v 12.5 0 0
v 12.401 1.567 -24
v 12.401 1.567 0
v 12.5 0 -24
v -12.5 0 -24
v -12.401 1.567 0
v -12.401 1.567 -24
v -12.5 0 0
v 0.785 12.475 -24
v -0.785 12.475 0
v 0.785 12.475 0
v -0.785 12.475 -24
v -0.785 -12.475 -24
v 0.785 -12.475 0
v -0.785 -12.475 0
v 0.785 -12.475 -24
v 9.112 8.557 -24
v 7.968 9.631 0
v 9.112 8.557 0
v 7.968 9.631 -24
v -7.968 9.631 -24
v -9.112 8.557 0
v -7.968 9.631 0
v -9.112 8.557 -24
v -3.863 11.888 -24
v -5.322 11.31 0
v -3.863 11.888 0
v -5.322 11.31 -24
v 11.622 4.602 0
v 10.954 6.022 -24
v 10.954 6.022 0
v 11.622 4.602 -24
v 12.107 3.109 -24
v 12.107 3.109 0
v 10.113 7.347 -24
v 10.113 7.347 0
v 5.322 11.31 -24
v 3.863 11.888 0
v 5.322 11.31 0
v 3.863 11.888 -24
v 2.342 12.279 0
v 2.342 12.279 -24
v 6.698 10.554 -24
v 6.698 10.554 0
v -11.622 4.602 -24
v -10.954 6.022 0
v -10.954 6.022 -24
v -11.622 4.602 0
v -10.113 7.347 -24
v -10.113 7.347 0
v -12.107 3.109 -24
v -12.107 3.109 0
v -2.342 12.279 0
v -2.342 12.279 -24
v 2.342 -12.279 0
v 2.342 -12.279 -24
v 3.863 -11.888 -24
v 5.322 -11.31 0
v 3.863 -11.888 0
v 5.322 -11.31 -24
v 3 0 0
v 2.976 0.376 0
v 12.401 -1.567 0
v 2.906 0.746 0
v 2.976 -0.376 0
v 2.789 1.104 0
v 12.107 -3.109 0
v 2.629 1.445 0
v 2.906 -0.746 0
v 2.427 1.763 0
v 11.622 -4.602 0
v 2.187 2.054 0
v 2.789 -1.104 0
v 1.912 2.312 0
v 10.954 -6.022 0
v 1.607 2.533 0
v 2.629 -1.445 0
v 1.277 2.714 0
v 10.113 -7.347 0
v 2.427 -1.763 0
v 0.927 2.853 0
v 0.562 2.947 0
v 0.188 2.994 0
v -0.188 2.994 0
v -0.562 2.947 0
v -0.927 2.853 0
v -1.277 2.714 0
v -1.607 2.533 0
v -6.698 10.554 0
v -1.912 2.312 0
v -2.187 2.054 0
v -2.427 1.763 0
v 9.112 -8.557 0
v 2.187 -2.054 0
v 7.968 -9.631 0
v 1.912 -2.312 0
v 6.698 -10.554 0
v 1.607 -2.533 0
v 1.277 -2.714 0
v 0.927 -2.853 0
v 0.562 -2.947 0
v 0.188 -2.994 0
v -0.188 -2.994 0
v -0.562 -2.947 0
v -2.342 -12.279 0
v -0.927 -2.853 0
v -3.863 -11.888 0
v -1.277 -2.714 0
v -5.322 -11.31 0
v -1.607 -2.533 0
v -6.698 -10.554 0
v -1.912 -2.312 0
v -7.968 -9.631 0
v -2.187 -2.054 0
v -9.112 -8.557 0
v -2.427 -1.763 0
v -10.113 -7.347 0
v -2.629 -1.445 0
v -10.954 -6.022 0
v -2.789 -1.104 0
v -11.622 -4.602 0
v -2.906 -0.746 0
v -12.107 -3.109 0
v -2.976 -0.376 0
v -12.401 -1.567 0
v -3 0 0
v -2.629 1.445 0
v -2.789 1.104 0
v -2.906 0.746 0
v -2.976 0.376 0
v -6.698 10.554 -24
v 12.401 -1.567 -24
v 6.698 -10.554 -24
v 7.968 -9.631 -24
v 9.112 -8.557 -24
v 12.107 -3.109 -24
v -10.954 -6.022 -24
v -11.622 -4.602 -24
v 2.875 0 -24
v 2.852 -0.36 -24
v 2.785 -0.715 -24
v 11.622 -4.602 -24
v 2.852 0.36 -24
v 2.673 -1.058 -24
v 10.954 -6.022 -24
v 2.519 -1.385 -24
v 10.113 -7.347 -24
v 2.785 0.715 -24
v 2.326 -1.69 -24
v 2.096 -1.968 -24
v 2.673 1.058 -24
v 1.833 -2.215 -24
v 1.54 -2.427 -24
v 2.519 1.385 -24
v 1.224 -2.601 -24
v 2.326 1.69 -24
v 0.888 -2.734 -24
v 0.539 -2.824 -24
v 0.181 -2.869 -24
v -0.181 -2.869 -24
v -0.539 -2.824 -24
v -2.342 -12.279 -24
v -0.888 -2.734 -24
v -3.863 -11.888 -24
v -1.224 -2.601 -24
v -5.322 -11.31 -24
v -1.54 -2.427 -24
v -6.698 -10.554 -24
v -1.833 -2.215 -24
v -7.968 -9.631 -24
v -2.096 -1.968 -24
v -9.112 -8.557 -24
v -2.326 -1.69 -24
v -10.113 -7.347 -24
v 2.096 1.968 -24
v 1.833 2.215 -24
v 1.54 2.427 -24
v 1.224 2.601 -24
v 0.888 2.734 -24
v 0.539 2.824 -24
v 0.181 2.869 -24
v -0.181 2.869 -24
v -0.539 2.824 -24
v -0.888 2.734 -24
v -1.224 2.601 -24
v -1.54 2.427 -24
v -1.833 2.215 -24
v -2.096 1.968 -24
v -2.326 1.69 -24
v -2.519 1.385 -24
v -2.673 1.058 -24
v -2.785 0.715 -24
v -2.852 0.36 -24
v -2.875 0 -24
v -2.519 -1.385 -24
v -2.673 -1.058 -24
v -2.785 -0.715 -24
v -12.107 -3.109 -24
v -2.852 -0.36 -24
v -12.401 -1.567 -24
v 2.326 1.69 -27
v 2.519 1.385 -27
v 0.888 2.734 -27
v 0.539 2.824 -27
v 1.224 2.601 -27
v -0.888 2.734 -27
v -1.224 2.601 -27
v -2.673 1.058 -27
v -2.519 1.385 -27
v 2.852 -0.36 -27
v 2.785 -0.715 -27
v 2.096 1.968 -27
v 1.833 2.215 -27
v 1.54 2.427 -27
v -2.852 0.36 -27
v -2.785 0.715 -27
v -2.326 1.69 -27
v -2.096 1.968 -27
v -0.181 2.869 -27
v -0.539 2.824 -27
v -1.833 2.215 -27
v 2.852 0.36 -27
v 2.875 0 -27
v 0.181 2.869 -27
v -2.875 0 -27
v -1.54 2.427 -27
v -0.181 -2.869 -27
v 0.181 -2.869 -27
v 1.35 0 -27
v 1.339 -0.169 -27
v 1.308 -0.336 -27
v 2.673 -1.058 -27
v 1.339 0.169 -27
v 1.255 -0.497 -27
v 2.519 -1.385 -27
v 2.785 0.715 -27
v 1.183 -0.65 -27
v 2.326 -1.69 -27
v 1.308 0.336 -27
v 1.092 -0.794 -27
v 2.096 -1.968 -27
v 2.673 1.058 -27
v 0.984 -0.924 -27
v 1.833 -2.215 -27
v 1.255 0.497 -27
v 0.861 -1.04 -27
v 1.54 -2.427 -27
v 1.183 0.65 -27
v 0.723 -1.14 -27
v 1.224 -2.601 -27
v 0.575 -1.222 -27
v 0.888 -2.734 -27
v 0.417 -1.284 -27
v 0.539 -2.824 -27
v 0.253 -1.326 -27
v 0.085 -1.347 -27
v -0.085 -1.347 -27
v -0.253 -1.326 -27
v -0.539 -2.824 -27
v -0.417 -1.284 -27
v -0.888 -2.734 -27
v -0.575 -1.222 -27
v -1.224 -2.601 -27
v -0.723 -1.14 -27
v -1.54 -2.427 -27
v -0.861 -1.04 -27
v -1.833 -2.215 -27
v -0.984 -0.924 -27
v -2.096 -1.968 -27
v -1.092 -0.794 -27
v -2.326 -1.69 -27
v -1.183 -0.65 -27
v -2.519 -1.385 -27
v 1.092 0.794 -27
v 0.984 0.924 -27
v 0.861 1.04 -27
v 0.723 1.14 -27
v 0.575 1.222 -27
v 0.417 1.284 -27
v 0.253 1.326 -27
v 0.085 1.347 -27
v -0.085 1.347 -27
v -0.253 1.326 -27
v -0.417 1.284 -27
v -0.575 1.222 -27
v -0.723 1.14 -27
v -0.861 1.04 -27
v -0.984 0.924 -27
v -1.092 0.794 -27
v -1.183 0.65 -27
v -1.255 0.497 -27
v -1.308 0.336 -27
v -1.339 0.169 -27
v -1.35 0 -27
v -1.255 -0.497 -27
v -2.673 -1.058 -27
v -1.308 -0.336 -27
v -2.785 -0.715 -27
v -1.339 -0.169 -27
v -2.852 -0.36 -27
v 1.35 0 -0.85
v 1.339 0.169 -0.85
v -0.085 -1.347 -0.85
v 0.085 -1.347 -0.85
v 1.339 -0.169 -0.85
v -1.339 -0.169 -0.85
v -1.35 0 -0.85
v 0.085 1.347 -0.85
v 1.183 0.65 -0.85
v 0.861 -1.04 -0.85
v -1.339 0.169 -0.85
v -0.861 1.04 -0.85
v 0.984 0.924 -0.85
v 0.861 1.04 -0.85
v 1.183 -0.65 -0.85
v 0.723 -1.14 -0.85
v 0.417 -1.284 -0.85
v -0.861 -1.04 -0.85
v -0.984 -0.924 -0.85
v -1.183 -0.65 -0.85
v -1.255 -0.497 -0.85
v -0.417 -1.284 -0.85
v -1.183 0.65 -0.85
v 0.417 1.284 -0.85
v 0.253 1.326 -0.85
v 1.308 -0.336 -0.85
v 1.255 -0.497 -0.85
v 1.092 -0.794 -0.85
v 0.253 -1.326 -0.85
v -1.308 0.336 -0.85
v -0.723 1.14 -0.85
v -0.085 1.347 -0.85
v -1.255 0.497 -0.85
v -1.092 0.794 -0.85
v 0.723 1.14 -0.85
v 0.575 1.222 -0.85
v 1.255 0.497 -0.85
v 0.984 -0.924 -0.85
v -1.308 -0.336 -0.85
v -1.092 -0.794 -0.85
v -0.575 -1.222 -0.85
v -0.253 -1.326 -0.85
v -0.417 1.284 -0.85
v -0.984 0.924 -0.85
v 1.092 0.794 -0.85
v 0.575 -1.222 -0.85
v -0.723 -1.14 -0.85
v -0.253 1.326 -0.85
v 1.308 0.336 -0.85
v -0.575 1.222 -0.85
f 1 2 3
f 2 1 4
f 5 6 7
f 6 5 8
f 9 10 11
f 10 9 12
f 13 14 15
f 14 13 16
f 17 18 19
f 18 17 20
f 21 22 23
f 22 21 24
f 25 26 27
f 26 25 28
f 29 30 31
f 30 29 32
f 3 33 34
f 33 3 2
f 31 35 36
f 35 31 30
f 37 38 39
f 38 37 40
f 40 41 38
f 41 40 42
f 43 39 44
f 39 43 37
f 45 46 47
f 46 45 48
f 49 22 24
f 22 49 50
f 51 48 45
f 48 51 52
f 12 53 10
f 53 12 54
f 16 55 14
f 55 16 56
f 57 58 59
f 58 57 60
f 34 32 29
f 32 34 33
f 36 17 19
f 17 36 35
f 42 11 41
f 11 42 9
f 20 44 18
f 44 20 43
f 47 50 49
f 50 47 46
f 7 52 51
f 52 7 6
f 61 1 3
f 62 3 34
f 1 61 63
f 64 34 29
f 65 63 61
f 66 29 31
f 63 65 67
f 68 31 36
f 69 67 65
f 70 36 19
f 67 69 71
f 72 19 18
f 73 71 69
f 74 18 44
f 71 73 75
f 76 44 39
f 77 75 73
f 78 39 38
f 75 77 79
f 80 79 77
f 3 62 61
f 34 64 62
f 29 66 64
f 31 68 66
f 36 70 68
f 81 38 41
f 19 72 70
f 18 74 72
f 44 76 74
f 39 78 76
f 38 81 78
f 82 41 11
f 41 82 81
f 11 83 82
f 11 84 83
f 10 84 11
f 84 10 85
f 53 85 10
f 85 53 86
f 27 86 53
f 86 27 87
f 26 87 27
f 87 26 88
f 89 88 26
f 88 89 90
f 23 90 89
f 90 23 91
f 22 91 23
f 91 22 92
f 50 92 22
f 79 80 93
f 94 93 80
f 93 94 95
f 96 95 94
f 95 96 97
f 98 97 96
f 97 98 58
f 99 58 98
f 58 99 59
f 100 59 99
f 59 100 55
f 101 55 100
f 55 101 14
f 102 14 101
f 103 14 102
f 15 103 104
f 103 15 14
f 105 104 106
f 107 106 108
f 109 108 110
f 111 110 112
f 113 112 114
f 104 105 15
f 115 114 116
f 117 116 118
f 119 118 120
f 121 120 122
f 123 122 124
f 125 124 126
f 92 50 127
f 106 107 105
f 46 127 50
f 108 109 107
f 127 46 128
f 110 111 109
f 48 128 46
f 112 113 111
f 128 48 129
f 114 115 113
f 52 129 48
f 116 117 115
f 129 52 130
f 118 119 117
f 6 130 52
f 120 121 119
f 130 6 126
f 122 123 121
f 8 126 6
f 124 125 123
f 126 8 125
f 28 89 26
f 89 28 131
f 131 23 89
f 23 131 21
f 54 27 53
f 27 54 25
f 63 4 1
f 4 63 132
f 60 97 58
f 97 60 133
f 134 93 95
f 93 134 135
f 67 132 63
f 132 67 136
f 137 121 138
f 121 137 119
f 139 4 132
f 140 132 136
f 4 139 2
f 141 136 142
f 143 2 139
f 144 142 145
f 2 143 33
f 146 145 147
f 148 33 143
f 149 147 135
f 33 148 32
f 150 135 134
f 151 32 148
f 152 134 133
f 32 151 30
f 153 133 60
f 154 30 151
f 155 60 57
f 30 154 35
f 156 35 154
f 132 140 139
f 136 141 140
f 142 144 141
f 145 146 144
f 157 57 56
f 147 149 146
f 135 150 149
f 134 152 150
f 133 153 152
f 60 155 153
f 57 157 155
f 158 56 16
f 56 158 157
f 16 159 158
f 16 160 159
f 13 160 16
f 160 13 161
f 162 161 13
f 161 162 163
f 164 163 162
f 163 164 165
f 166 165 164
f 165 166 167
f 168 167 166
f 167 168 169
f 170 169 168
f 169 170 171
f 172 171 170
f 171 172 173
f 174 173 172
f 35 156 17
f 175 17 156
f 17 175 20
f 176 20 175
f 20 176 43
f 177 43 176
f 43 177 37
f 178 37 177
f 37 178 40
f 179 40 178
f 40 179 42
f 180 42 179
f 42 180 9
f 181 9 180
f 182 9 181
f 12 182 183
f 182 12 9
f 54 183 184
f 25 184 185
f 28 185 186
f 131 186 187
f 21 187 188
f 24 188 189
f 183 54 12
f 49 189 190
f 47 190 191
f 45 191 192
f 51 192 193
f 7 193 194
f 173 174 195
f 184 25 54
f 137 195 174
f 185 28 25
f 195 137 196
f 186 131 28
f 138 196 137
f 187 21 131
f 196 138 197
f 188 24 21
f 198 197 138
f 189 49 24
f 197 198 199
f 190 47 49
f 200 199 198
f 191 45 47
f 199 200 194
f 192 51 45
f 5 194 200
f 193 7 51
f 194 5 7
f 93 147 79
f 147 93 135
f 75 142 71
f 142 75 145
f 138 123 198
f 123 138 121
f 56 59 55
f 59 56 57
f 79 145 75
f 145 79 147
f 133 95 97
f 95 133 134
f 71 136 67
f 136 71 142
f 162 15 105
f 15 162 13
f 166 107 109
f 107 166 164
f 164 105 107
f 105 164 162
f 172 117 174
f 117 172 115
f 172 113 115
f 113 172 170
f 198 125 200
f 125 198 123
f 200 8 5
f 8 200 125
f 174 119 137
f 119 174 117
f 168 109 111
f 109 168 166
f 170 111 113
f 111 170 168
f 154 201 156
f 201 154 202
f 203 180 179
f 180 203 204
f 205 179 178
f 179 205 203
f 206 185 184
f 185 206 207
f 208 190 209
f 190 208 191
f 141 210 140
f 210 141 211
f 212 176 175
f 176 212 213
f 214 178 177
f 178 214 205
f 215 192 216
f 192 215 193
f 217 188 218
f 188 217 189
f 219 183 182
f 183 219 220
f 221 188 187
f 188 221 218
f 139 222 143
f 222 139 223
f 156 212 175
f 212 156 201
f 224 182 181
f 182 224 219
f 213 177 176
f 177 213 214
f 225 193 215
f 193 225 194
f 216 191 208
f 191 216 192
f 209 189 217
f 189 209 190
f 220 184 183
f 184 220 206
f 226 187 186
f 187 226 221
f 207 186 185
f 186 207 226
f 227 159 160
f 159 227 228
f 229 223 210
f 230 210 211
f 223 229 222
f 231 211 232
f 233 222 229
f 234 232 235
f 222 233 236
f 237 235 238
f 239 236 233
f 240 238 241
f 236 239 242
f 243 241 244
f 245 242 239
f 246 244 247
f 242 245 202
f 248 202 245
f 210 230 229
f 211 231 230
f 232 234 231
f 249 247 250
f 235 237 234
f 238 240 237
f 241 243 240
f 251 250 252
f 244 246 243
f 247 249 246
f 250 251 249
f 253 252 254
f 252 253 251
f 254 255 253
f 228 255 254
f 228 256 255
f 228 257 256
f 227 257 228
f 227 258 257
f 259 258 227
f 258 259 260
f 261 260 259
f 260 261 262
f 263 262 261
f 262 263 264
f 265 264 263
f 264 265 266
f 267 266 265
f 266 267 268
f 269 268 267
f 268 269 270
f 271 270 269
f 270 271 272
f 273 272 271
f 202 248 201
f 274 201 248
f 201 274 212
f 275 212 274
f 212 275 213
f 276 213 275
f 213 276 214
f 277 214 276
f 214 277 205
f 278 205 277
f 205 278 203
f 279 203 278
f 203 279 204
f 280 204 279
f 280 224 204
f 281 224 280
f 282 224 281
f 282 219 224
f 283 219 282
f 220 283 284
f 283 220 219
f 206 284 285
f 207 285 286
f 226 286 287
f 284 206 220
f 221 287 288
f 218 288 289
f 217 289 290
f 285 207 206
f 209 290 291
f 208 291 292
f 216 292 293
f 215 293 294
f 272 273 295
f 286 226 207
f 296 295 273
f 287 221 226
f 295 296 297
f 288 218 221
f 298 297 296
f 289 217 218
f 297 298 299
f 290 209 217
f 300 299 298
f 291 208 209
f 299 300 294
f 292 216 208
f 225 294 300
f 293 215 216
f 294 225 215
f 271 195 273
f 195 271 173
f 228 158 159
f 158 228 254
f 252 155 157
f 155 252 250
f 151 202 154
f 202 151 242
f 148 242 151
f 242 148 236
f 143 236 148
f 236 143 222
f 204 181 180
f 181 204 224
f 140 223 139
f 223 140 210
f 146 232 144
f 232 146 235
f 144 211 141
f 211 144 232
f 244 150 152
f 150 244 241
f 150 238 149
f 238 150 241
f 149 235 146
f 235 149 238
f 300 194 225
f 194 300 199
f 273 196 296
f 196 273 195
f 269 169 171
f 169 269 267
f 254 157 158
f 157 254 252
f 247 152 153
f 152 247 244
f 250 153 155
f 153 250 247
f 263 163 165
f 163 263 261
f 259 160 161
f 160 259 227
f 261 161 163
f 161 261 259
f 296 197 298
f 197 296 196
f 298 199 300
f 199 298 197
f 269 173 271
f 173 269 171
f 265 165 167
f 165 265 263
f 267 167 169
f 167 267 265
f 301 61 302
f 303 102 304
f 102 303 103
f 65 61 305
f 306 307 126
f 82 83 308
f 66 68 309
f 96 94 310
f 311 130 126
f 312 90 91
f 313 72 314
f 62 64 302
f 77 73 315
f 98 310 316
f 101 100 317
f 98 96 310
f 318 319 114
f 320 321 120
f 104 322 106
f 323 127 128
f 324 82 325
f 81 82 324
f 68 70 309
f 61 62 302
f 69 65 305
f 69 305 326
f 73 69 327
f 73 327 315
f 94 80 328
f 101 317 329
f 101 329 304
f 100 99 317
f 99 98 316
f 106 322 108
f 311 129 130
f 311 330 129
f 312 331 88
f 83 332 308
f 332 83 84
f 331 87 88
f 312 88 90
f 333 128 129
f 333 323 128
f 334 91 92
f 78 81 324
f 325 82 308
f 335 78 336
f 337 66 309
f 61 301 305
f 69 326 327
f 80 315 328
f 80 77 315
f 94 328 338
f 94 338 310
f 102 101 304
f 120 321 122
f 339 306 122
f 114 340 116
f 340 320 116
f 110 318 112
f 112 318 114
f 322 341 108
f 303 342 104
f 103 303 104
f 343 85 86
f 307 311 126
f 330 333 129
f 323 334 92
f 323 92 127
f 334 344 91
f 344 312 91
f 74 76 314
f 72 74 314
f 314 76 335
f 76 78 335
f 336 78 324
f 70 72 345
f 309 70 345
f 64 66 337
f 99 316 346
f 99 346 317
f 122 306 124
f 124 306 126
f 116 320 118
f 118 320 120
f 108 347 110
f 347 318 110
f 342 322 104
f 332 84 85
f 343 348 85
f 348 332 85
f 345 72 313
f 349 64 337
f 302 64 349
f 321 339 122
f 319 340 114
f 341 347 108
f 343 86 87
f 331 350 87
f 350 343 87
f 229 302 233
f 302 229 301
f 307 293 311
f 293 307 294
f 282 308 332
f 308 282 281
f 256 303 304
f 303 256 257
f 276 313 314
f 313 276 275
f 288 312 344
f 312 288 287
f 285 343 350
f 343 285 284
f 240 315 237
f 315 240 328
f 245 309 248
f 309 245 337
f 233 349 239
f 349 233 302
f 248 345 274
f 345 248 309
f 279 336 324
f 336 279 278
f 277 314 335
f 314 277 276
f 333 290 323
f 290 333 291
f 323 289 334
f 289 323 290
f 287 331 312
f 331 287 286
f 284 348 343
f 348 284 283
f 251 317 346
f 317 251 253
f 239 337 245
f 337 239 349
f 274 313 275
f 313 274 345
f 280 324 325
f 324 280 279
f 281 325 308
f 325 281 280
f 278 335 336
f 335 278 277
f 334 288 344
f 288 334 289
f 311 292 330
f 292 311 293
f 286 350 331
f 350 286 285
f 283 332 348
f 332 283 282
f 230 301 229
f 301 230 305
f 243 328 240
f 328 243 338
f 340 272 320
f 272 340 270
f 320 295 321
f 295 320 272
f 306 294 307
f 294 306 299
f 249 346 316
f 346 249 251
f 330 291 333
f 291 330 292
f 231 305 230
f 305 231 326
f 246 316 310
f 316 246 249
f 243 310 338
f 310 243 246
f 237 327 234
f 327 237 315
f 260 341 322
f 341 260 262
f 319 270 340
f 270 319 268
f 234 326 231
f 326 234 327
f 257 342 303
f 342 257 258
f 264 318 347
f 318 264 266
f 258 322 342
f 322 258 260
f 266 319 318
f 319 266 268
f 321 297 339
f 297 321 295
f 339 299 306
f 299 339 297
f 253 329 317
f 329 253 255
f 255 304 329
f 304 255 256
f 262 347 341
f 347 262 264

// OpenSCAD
$fn = 50;


difference() {
	union() {
		translate(v = [0, 0, -24.0000000000]) {
			cylinder(h = 24, r = 12.5000000000);
		}
		#translate(v = [0, 0, -27.0000000000]) {
			cylinder(h = 27, r = 2.8750000000);
		}
	}
	union() {
		translate(v = [0, 0, 0]) {
			rotate(a = [0, 0, 0]) {
				difference() {
					union() {
						translate(v = [0, 0, -27.0000000000]) {
							cylinder(h = 27, r = 1.0000000000);
						}
						translate(v = [0, 0, -0.8500000000]) {
							cylinder(h = 0.8500000000, r1 = 1.3500000000, r2 = 3.0000000000);
						}
						translate(v = [0, 0, -27.0000000000]) {
							cylinder(h = 27, r = 1.3500000000);
						}
						translate(v = [0, 0, -27.0000000000]) {
							cylinder(h = 27, r = 1.0000000000);
						}
					}
					union();
				}
			}
		}
	}
}
